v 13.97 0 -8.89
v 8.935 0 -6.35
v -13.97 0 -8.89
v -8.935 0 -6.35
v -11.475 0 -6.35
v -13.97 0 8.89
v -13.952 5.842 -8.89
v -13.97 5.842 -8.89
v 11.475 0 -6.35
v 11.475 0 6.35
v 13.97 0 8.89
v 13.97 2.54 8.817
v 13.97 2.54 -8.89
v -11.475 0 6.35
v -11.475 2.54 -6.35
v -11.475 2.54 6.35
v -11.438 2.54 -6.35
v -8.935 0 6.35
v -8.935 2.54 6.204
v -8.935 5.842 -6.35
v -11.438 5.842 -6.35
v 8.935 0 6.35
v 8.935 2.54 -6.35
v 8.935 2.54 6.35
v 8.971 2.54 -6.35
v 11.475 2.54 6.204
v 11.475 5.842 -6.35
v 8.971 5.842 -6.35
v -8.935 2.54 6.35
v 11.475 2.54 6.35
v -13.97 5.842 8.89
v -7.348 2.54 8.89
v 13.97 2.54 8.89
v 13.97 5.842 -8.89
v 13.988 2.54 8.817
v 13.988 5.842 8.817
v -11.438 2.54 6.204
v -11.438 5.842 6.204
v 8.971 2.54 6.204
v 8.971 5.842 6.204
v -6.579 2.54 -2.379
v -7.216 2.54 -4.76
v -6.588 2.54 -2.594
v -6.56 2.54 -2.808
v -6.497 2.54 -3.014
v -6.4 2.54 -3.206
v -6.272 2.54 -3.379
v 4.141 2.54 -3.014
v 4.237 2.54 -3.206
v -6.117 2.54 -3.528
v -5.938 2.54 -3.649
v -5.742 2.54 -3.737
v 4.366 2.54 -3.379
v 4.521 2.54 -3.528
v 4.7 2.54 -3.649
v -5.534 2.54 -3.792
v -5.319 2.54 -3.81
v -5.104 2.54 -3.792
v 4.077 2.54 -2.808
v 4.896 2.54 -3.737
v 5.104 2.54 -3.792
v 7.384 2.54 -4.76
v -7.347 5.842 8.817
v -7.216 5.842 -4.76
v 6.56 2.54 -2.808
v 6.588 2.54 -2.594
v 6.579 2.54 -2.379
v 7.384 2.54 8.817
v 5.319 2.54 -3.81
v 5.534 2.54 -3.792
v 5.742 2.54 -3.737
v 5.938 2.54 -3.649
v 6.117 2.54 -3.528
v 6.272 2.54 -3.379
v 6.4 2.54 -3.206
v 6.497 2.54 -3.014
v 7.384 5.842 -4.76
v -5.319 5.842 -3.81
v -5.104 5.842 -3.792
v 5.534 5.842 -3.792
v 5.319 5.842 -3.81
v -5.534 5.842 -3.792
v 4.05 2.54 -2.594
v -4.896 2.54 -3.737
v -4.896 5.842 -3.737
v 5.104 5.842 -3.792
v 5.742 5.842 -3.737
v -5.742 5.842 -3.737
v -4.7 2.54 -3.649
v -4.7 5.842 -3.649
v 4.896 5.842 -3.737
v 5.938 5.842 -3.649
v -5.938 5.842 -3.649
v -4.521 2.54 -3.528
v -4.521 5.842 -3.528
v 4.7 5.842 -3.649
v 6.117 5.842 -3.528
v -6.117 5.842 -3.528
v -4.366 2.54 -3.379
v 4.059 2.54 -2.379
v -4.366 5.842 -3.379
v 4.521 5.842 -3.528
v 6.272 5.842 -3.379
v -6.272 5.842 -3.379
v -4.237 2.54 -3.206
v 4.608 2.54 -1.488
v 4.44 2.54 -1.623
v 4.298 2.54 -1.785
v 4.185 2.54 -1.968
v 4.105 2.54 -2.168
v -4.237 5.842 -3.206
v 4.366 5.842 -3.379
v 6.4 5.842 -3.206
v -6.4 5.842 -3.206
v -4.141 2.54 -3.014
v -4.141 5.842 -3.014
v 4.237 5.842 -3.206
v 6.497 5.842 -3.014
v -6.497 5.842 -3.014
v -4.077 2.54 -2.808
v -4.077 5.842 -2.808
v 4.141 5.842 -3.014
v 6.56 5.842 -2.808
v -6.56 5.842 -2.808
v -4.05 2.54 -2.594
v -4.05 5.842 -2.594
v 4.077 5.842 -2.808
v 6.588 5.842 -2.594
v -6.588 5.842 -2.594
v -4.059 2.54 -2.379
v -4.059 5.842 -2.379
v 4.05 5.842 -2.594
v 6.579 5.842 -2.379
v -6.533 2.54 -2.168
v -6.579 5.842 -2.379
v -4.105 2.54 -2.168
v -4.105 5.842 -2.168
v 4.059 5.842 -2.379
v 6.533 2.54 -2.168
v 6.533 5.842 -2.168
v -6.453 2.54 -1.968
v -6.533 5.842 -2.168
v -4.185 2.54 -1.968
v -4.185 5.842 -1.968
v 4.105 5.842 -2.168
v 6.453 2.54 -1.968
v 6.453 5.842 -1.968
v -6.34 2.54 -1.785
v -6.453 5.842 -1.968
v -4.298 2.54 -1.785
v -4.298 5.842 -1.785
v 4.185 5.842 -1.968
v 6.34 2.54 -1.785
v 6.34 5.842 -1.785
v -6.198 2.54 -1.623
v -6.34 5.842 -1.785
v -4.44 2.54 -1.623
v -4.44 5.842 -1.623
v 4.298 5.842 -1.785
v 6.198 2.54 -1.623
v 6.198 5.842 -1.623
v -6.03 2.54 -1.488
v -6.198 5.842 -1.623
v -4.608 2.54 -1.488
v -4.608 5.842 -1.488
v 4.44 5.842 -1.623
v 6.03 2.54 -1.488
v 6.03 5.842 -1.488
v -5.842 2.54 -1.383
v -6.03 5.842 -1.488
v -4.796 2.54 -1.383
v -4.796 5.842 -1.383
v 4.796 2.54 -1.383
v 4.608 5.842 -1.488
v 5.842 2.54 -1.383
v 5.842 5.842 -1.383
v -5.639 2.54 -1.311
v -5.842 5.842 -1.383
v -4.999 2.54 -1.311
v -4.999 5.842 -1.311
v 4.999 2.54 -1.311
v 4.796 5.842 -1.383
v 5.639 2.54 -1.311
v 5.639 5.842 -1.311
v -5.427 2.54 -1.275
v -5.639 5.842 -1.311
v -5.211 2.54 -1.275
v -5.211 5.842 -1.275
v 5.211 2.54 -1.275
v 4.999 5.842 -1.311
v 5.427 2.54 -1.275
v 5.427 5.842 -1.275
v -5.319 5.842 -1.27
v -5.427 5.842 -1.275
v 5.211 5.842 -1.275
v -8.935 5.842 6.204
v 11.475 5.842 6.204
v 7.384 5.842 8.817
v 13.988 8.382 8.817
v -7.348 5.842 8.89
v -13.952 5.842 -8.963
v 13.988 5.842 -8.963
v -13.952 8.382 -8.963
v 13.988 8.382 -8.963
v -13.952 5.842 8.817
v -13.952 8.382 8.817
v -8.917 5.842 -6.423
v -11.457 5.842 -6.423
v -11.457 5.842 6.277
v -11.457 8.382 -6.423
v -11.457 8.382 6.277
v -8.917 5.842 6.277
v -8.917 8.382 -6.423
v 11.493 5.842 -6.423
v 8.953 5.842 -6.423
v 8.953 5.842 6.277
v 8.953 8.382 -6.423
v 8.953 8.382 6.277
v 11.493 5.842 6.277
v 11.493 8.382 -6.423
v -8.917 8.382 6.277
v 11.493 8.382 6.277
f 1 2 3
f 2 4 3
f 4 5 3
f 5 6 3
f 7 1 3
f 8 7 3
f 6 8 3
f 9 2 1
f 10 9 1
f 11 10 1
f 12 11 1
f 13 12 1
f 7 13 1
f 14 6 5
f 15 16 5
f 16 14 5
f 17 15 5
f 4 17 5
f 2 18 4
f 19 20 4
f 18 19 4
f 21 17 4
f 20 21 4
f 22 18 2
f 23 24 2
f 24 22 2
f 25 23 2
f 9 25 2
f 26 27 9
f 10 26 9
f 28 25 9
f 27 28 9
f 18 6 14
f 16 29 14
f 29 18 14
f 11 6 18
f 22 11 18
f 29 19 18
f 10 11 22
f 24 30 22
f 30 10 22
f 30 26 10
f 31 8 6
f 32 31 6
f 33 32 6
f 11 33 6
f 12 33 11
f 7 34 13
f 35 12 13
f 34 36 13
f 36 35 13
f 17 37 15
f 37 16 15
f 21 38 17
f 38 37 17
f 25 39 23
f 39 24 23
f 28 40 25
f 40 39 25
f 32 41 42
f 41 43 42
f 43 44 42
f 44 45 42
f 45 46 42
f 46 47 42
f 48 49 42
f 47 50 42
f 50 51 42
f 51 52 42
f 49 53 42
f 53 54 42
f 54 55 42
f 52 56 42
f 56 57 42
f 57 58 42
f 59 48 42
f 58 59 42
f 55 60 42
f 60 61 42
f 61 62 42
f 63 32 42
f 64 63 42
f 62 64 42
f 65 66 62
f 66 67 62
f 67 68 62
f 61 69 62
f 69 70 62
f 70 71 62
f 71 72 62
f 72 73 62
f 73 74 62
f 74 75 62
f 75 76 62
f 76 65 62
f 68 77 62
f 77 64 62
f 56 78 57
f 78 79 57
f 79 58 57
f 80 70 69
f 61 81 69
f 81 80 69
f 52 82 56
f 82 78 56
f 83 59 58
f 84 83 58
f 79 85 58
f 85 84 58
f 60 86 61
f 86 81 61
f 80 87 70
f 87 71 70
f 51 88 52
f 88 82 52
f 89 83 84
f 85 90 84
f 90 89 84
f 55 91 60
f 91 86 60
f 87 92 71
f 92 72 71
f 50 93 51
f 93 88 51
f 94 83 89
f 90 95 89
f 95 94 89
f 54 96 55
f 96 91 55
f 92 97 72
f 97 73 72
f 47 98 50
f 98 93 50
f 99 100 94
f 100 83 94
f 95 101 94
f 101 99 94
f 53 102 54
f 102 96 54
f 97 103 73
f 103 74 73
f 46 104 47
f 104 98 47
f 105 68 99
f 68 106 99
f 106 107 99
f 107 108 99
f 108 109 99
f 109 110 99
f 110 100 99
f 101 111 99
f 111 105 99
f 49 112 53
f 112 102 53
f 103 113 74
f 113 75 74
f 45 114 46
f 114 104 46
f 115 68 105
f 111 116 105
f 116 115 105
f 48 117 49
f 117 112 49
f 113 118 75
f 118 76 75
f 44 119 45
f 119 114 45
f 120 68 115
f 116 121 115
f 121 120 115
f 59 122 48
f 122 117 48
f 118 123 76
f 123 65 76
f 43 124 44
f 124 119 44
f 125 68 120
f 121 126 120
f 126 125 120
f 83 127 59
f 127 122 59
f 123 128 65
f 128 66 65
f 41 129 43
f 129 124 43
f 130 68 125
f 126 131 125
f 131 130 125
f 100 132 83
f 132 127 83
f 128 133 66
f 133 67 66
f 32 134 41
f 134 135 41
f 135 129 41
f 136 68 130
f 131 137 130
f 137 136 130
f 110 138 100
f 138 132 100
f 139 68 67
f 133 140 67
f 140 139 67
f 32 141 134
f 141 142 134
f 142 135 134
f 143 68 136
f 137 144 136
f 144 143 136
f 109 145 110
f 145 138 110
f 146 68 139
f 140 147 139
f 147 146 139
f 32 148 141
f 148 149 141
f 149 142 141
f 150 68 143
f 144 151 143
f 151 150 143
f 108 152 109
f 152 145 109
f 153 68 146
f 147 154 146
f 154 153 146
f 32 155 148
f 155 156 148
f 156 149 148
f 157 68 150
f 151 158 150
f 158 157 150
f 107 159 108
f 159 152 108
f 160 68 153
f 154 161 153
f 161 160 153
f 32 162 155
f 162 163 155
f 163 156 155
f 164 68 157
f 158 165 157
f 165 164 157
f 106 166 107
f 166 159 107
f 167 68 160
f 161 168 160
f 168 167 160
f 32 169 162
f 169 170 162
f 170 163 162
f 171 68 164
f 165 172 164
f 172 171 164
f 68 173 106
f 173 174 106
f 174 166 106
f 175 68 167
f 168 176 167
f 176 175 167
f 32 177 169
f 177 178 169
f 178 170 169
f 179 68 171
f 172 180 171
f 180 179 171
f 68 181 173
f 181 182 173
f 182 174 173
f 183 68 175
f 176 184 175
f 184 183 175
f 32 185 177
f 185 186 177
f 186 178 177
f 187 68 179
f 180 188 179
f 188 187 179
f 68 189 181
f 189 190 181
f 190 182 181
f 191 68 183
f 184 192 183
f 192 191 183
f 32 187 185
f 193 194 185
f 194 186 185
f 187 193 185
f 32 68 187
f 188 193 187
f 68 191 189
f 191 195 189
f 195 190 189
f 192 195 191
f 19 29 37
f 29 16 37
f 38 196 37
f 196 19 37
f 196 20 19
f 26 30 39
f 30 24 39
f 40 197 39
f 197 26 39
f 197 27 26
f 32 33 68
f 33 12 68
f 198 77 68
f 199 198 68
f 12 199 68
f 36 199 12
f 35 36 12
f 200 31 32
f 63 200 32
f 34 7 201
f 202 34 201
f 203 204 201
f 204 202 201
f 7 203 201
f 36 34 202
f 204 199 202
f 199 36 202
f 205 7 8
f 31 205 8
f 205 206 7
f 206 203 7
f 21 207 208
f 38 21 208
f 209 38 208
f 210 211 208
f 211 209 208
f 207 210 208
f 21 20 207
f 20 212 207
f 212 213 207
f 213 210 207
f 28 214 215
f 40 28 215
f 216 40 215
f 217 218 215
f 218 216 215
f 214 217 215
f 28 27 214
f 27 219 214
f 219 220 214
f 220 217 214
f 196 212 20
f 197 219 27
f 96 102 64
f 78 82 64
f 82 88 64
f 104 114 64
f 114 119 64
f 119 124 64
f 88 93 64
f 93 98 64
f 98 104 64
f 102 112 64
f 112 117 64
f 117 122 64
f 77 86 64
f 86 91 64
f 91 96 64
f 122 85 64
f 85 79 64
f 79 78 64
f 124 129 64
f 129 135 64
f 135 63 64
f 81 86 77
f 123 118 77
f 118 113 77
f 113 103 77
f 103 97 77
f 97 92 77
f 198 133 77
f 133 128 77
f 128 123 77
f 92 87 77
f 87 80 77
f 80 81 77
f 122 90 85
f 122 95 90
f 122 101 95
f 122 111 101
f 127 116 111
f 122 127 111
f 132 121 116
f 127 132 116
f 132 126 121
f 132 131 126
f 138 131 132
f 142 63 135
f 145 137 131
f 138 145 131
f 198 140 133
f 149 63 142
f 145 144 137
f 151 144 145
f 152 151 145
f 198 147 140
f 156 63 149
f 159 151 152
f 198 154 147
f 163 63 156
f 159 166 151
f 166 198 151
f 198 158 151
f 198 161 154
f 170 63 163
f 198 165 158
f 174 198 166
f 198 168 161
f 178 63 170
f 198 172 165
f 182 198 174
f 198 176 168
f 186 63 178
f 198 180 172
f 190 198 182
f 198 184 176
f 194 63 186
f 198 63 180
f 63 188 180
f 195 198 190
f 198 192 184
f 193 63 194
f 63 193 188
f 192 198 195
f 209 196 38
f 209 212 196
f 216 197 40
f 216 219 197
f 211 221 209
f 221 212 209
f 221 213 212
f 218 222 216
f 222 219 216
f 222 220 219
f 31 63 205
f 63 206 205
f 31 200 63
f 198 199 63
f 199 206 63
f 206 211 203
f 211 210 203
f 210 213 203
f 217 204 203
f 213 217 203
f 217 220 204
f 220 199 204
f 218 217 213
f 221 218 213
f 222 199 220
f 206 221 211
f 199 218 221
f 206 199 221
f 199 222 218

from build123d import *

# Parameters (mm, degrees)
SKETCH1_W           = 27.94
SKETCH1_H           = 17.78
SKETCH1_W_2         = 2.54
SKETCH1_H_2         = 12.7
BOSS_EXTRUDE2_DEPTH = 2.54
SKETCH3_R           = 1.27
BOSS_EXTRUDE3_DEPTH = 3.302
SKETCH6_W           = 2.503557337
SKETCH6_H           = 12.554229347
BOSS_EXTRUDE6_DEPTH = 3.302
SKETCH4_W           = 27.94
SKETCH4_H           = 17.78
SKETCH4_W_2         = 2.54
SKETCH4_H_2         = 12.7
BOSS_EXTRUDE7_DEPTH = 2.54


with BuildPart() as part:
    # Sketch1 → Boss-Extrude2 (new body)
    with BuildSketch(Plane(origin=(0, 0, 0), x_dir=(1, 0, 0), z_dir=(0, 1, 0))):
        Rectangle(SKETCH1_W, SKETCH1_H)
        with Locations((-10.20489899, 0)):
            Rectangle(SKETCH1_W_2, SKETCH1_H_2, mode=Mode.SUBTRACT)
        with Locations((10.20489899, 0)):
            Rectangle(SKETCH1_W_2, SKETCH1_H_2, mode=Mode.SUBTRACT)
    extrude(amount=BOSS_EXTRUDE2_DEPTH)

    # Sketch3 → Boss-Extrude3 (add)
    with BuildSketch(Plane(origin=(0, 2.54, 0), x_dir=(1, 0, 0), z_dir=(0, 1, 0))):
        with Locations(Location((-5.318941048, 2.54, 0), (0, 0, 90))):
            Circle(SKETCH3_R)
        with Locations(Location((5.318941048, 2.54, 0), (0, 0, 90))):
            Circle(SKETCH3_R)
    extrude(amount=BOSS_EXTRUDE3_DEPTH)

    # Sketch6 → Boss-Extrude6 (add)
    with BuildSketch(Plane(origin=(0, 2.54, 0), x_dir=(1, 0, 0), z_dir=(0, 1, 0))):
        Polygon((-7.215647318, 4.760339872), (7.384221332, 4.760339872), (7.384221332, -8.817114674), (13.988221332, -8.817114674), (13.97, 8.89), (-13.97, 8.89), (-13.97, -8.89), (-7.347778668, -8.89), align=None)
        with Locations((10.223120322, 0.072885327)):
            Rectangle(SKETCH6_W, SKETCH6_H, mode=Mode.SUBTRACT)
        with Locations((-10.186677659, 0.072885327)):
            Rectangle(SKETCH6_W, SKETCH6_H, mode=Mode.SUBTRACT)
    extrude(amount=BOSS_EXTRUDE6_DEPTH)

    # Sketch4 → Boss-Extrude7 (add)
    with BuildSketch(Plane(origin=(0, 5.842, 0), x_dir=(1, 0, 0), z_dir=(0, 1, 0))):
        with Locations((0.018221332, 0.072885326)):
            Rectangle(SKETCH4_W, SKETCH4_H)
        with Locations((-10.186677658, 0.072885326)):
            Rectangle(SKETCH4_W_2, SKETCH4_H_2, mode=Mode.SUBTRACT)
        with Locations((10.223120322, 0.072885326)):
            Rectangle(SKETCH4_W_2, SKETCH4_H_2, mode=Mode.SUBTRACT)
    extrude(amount=BOSS_EXTRUDE7_DEPTH)


solid = part.part
